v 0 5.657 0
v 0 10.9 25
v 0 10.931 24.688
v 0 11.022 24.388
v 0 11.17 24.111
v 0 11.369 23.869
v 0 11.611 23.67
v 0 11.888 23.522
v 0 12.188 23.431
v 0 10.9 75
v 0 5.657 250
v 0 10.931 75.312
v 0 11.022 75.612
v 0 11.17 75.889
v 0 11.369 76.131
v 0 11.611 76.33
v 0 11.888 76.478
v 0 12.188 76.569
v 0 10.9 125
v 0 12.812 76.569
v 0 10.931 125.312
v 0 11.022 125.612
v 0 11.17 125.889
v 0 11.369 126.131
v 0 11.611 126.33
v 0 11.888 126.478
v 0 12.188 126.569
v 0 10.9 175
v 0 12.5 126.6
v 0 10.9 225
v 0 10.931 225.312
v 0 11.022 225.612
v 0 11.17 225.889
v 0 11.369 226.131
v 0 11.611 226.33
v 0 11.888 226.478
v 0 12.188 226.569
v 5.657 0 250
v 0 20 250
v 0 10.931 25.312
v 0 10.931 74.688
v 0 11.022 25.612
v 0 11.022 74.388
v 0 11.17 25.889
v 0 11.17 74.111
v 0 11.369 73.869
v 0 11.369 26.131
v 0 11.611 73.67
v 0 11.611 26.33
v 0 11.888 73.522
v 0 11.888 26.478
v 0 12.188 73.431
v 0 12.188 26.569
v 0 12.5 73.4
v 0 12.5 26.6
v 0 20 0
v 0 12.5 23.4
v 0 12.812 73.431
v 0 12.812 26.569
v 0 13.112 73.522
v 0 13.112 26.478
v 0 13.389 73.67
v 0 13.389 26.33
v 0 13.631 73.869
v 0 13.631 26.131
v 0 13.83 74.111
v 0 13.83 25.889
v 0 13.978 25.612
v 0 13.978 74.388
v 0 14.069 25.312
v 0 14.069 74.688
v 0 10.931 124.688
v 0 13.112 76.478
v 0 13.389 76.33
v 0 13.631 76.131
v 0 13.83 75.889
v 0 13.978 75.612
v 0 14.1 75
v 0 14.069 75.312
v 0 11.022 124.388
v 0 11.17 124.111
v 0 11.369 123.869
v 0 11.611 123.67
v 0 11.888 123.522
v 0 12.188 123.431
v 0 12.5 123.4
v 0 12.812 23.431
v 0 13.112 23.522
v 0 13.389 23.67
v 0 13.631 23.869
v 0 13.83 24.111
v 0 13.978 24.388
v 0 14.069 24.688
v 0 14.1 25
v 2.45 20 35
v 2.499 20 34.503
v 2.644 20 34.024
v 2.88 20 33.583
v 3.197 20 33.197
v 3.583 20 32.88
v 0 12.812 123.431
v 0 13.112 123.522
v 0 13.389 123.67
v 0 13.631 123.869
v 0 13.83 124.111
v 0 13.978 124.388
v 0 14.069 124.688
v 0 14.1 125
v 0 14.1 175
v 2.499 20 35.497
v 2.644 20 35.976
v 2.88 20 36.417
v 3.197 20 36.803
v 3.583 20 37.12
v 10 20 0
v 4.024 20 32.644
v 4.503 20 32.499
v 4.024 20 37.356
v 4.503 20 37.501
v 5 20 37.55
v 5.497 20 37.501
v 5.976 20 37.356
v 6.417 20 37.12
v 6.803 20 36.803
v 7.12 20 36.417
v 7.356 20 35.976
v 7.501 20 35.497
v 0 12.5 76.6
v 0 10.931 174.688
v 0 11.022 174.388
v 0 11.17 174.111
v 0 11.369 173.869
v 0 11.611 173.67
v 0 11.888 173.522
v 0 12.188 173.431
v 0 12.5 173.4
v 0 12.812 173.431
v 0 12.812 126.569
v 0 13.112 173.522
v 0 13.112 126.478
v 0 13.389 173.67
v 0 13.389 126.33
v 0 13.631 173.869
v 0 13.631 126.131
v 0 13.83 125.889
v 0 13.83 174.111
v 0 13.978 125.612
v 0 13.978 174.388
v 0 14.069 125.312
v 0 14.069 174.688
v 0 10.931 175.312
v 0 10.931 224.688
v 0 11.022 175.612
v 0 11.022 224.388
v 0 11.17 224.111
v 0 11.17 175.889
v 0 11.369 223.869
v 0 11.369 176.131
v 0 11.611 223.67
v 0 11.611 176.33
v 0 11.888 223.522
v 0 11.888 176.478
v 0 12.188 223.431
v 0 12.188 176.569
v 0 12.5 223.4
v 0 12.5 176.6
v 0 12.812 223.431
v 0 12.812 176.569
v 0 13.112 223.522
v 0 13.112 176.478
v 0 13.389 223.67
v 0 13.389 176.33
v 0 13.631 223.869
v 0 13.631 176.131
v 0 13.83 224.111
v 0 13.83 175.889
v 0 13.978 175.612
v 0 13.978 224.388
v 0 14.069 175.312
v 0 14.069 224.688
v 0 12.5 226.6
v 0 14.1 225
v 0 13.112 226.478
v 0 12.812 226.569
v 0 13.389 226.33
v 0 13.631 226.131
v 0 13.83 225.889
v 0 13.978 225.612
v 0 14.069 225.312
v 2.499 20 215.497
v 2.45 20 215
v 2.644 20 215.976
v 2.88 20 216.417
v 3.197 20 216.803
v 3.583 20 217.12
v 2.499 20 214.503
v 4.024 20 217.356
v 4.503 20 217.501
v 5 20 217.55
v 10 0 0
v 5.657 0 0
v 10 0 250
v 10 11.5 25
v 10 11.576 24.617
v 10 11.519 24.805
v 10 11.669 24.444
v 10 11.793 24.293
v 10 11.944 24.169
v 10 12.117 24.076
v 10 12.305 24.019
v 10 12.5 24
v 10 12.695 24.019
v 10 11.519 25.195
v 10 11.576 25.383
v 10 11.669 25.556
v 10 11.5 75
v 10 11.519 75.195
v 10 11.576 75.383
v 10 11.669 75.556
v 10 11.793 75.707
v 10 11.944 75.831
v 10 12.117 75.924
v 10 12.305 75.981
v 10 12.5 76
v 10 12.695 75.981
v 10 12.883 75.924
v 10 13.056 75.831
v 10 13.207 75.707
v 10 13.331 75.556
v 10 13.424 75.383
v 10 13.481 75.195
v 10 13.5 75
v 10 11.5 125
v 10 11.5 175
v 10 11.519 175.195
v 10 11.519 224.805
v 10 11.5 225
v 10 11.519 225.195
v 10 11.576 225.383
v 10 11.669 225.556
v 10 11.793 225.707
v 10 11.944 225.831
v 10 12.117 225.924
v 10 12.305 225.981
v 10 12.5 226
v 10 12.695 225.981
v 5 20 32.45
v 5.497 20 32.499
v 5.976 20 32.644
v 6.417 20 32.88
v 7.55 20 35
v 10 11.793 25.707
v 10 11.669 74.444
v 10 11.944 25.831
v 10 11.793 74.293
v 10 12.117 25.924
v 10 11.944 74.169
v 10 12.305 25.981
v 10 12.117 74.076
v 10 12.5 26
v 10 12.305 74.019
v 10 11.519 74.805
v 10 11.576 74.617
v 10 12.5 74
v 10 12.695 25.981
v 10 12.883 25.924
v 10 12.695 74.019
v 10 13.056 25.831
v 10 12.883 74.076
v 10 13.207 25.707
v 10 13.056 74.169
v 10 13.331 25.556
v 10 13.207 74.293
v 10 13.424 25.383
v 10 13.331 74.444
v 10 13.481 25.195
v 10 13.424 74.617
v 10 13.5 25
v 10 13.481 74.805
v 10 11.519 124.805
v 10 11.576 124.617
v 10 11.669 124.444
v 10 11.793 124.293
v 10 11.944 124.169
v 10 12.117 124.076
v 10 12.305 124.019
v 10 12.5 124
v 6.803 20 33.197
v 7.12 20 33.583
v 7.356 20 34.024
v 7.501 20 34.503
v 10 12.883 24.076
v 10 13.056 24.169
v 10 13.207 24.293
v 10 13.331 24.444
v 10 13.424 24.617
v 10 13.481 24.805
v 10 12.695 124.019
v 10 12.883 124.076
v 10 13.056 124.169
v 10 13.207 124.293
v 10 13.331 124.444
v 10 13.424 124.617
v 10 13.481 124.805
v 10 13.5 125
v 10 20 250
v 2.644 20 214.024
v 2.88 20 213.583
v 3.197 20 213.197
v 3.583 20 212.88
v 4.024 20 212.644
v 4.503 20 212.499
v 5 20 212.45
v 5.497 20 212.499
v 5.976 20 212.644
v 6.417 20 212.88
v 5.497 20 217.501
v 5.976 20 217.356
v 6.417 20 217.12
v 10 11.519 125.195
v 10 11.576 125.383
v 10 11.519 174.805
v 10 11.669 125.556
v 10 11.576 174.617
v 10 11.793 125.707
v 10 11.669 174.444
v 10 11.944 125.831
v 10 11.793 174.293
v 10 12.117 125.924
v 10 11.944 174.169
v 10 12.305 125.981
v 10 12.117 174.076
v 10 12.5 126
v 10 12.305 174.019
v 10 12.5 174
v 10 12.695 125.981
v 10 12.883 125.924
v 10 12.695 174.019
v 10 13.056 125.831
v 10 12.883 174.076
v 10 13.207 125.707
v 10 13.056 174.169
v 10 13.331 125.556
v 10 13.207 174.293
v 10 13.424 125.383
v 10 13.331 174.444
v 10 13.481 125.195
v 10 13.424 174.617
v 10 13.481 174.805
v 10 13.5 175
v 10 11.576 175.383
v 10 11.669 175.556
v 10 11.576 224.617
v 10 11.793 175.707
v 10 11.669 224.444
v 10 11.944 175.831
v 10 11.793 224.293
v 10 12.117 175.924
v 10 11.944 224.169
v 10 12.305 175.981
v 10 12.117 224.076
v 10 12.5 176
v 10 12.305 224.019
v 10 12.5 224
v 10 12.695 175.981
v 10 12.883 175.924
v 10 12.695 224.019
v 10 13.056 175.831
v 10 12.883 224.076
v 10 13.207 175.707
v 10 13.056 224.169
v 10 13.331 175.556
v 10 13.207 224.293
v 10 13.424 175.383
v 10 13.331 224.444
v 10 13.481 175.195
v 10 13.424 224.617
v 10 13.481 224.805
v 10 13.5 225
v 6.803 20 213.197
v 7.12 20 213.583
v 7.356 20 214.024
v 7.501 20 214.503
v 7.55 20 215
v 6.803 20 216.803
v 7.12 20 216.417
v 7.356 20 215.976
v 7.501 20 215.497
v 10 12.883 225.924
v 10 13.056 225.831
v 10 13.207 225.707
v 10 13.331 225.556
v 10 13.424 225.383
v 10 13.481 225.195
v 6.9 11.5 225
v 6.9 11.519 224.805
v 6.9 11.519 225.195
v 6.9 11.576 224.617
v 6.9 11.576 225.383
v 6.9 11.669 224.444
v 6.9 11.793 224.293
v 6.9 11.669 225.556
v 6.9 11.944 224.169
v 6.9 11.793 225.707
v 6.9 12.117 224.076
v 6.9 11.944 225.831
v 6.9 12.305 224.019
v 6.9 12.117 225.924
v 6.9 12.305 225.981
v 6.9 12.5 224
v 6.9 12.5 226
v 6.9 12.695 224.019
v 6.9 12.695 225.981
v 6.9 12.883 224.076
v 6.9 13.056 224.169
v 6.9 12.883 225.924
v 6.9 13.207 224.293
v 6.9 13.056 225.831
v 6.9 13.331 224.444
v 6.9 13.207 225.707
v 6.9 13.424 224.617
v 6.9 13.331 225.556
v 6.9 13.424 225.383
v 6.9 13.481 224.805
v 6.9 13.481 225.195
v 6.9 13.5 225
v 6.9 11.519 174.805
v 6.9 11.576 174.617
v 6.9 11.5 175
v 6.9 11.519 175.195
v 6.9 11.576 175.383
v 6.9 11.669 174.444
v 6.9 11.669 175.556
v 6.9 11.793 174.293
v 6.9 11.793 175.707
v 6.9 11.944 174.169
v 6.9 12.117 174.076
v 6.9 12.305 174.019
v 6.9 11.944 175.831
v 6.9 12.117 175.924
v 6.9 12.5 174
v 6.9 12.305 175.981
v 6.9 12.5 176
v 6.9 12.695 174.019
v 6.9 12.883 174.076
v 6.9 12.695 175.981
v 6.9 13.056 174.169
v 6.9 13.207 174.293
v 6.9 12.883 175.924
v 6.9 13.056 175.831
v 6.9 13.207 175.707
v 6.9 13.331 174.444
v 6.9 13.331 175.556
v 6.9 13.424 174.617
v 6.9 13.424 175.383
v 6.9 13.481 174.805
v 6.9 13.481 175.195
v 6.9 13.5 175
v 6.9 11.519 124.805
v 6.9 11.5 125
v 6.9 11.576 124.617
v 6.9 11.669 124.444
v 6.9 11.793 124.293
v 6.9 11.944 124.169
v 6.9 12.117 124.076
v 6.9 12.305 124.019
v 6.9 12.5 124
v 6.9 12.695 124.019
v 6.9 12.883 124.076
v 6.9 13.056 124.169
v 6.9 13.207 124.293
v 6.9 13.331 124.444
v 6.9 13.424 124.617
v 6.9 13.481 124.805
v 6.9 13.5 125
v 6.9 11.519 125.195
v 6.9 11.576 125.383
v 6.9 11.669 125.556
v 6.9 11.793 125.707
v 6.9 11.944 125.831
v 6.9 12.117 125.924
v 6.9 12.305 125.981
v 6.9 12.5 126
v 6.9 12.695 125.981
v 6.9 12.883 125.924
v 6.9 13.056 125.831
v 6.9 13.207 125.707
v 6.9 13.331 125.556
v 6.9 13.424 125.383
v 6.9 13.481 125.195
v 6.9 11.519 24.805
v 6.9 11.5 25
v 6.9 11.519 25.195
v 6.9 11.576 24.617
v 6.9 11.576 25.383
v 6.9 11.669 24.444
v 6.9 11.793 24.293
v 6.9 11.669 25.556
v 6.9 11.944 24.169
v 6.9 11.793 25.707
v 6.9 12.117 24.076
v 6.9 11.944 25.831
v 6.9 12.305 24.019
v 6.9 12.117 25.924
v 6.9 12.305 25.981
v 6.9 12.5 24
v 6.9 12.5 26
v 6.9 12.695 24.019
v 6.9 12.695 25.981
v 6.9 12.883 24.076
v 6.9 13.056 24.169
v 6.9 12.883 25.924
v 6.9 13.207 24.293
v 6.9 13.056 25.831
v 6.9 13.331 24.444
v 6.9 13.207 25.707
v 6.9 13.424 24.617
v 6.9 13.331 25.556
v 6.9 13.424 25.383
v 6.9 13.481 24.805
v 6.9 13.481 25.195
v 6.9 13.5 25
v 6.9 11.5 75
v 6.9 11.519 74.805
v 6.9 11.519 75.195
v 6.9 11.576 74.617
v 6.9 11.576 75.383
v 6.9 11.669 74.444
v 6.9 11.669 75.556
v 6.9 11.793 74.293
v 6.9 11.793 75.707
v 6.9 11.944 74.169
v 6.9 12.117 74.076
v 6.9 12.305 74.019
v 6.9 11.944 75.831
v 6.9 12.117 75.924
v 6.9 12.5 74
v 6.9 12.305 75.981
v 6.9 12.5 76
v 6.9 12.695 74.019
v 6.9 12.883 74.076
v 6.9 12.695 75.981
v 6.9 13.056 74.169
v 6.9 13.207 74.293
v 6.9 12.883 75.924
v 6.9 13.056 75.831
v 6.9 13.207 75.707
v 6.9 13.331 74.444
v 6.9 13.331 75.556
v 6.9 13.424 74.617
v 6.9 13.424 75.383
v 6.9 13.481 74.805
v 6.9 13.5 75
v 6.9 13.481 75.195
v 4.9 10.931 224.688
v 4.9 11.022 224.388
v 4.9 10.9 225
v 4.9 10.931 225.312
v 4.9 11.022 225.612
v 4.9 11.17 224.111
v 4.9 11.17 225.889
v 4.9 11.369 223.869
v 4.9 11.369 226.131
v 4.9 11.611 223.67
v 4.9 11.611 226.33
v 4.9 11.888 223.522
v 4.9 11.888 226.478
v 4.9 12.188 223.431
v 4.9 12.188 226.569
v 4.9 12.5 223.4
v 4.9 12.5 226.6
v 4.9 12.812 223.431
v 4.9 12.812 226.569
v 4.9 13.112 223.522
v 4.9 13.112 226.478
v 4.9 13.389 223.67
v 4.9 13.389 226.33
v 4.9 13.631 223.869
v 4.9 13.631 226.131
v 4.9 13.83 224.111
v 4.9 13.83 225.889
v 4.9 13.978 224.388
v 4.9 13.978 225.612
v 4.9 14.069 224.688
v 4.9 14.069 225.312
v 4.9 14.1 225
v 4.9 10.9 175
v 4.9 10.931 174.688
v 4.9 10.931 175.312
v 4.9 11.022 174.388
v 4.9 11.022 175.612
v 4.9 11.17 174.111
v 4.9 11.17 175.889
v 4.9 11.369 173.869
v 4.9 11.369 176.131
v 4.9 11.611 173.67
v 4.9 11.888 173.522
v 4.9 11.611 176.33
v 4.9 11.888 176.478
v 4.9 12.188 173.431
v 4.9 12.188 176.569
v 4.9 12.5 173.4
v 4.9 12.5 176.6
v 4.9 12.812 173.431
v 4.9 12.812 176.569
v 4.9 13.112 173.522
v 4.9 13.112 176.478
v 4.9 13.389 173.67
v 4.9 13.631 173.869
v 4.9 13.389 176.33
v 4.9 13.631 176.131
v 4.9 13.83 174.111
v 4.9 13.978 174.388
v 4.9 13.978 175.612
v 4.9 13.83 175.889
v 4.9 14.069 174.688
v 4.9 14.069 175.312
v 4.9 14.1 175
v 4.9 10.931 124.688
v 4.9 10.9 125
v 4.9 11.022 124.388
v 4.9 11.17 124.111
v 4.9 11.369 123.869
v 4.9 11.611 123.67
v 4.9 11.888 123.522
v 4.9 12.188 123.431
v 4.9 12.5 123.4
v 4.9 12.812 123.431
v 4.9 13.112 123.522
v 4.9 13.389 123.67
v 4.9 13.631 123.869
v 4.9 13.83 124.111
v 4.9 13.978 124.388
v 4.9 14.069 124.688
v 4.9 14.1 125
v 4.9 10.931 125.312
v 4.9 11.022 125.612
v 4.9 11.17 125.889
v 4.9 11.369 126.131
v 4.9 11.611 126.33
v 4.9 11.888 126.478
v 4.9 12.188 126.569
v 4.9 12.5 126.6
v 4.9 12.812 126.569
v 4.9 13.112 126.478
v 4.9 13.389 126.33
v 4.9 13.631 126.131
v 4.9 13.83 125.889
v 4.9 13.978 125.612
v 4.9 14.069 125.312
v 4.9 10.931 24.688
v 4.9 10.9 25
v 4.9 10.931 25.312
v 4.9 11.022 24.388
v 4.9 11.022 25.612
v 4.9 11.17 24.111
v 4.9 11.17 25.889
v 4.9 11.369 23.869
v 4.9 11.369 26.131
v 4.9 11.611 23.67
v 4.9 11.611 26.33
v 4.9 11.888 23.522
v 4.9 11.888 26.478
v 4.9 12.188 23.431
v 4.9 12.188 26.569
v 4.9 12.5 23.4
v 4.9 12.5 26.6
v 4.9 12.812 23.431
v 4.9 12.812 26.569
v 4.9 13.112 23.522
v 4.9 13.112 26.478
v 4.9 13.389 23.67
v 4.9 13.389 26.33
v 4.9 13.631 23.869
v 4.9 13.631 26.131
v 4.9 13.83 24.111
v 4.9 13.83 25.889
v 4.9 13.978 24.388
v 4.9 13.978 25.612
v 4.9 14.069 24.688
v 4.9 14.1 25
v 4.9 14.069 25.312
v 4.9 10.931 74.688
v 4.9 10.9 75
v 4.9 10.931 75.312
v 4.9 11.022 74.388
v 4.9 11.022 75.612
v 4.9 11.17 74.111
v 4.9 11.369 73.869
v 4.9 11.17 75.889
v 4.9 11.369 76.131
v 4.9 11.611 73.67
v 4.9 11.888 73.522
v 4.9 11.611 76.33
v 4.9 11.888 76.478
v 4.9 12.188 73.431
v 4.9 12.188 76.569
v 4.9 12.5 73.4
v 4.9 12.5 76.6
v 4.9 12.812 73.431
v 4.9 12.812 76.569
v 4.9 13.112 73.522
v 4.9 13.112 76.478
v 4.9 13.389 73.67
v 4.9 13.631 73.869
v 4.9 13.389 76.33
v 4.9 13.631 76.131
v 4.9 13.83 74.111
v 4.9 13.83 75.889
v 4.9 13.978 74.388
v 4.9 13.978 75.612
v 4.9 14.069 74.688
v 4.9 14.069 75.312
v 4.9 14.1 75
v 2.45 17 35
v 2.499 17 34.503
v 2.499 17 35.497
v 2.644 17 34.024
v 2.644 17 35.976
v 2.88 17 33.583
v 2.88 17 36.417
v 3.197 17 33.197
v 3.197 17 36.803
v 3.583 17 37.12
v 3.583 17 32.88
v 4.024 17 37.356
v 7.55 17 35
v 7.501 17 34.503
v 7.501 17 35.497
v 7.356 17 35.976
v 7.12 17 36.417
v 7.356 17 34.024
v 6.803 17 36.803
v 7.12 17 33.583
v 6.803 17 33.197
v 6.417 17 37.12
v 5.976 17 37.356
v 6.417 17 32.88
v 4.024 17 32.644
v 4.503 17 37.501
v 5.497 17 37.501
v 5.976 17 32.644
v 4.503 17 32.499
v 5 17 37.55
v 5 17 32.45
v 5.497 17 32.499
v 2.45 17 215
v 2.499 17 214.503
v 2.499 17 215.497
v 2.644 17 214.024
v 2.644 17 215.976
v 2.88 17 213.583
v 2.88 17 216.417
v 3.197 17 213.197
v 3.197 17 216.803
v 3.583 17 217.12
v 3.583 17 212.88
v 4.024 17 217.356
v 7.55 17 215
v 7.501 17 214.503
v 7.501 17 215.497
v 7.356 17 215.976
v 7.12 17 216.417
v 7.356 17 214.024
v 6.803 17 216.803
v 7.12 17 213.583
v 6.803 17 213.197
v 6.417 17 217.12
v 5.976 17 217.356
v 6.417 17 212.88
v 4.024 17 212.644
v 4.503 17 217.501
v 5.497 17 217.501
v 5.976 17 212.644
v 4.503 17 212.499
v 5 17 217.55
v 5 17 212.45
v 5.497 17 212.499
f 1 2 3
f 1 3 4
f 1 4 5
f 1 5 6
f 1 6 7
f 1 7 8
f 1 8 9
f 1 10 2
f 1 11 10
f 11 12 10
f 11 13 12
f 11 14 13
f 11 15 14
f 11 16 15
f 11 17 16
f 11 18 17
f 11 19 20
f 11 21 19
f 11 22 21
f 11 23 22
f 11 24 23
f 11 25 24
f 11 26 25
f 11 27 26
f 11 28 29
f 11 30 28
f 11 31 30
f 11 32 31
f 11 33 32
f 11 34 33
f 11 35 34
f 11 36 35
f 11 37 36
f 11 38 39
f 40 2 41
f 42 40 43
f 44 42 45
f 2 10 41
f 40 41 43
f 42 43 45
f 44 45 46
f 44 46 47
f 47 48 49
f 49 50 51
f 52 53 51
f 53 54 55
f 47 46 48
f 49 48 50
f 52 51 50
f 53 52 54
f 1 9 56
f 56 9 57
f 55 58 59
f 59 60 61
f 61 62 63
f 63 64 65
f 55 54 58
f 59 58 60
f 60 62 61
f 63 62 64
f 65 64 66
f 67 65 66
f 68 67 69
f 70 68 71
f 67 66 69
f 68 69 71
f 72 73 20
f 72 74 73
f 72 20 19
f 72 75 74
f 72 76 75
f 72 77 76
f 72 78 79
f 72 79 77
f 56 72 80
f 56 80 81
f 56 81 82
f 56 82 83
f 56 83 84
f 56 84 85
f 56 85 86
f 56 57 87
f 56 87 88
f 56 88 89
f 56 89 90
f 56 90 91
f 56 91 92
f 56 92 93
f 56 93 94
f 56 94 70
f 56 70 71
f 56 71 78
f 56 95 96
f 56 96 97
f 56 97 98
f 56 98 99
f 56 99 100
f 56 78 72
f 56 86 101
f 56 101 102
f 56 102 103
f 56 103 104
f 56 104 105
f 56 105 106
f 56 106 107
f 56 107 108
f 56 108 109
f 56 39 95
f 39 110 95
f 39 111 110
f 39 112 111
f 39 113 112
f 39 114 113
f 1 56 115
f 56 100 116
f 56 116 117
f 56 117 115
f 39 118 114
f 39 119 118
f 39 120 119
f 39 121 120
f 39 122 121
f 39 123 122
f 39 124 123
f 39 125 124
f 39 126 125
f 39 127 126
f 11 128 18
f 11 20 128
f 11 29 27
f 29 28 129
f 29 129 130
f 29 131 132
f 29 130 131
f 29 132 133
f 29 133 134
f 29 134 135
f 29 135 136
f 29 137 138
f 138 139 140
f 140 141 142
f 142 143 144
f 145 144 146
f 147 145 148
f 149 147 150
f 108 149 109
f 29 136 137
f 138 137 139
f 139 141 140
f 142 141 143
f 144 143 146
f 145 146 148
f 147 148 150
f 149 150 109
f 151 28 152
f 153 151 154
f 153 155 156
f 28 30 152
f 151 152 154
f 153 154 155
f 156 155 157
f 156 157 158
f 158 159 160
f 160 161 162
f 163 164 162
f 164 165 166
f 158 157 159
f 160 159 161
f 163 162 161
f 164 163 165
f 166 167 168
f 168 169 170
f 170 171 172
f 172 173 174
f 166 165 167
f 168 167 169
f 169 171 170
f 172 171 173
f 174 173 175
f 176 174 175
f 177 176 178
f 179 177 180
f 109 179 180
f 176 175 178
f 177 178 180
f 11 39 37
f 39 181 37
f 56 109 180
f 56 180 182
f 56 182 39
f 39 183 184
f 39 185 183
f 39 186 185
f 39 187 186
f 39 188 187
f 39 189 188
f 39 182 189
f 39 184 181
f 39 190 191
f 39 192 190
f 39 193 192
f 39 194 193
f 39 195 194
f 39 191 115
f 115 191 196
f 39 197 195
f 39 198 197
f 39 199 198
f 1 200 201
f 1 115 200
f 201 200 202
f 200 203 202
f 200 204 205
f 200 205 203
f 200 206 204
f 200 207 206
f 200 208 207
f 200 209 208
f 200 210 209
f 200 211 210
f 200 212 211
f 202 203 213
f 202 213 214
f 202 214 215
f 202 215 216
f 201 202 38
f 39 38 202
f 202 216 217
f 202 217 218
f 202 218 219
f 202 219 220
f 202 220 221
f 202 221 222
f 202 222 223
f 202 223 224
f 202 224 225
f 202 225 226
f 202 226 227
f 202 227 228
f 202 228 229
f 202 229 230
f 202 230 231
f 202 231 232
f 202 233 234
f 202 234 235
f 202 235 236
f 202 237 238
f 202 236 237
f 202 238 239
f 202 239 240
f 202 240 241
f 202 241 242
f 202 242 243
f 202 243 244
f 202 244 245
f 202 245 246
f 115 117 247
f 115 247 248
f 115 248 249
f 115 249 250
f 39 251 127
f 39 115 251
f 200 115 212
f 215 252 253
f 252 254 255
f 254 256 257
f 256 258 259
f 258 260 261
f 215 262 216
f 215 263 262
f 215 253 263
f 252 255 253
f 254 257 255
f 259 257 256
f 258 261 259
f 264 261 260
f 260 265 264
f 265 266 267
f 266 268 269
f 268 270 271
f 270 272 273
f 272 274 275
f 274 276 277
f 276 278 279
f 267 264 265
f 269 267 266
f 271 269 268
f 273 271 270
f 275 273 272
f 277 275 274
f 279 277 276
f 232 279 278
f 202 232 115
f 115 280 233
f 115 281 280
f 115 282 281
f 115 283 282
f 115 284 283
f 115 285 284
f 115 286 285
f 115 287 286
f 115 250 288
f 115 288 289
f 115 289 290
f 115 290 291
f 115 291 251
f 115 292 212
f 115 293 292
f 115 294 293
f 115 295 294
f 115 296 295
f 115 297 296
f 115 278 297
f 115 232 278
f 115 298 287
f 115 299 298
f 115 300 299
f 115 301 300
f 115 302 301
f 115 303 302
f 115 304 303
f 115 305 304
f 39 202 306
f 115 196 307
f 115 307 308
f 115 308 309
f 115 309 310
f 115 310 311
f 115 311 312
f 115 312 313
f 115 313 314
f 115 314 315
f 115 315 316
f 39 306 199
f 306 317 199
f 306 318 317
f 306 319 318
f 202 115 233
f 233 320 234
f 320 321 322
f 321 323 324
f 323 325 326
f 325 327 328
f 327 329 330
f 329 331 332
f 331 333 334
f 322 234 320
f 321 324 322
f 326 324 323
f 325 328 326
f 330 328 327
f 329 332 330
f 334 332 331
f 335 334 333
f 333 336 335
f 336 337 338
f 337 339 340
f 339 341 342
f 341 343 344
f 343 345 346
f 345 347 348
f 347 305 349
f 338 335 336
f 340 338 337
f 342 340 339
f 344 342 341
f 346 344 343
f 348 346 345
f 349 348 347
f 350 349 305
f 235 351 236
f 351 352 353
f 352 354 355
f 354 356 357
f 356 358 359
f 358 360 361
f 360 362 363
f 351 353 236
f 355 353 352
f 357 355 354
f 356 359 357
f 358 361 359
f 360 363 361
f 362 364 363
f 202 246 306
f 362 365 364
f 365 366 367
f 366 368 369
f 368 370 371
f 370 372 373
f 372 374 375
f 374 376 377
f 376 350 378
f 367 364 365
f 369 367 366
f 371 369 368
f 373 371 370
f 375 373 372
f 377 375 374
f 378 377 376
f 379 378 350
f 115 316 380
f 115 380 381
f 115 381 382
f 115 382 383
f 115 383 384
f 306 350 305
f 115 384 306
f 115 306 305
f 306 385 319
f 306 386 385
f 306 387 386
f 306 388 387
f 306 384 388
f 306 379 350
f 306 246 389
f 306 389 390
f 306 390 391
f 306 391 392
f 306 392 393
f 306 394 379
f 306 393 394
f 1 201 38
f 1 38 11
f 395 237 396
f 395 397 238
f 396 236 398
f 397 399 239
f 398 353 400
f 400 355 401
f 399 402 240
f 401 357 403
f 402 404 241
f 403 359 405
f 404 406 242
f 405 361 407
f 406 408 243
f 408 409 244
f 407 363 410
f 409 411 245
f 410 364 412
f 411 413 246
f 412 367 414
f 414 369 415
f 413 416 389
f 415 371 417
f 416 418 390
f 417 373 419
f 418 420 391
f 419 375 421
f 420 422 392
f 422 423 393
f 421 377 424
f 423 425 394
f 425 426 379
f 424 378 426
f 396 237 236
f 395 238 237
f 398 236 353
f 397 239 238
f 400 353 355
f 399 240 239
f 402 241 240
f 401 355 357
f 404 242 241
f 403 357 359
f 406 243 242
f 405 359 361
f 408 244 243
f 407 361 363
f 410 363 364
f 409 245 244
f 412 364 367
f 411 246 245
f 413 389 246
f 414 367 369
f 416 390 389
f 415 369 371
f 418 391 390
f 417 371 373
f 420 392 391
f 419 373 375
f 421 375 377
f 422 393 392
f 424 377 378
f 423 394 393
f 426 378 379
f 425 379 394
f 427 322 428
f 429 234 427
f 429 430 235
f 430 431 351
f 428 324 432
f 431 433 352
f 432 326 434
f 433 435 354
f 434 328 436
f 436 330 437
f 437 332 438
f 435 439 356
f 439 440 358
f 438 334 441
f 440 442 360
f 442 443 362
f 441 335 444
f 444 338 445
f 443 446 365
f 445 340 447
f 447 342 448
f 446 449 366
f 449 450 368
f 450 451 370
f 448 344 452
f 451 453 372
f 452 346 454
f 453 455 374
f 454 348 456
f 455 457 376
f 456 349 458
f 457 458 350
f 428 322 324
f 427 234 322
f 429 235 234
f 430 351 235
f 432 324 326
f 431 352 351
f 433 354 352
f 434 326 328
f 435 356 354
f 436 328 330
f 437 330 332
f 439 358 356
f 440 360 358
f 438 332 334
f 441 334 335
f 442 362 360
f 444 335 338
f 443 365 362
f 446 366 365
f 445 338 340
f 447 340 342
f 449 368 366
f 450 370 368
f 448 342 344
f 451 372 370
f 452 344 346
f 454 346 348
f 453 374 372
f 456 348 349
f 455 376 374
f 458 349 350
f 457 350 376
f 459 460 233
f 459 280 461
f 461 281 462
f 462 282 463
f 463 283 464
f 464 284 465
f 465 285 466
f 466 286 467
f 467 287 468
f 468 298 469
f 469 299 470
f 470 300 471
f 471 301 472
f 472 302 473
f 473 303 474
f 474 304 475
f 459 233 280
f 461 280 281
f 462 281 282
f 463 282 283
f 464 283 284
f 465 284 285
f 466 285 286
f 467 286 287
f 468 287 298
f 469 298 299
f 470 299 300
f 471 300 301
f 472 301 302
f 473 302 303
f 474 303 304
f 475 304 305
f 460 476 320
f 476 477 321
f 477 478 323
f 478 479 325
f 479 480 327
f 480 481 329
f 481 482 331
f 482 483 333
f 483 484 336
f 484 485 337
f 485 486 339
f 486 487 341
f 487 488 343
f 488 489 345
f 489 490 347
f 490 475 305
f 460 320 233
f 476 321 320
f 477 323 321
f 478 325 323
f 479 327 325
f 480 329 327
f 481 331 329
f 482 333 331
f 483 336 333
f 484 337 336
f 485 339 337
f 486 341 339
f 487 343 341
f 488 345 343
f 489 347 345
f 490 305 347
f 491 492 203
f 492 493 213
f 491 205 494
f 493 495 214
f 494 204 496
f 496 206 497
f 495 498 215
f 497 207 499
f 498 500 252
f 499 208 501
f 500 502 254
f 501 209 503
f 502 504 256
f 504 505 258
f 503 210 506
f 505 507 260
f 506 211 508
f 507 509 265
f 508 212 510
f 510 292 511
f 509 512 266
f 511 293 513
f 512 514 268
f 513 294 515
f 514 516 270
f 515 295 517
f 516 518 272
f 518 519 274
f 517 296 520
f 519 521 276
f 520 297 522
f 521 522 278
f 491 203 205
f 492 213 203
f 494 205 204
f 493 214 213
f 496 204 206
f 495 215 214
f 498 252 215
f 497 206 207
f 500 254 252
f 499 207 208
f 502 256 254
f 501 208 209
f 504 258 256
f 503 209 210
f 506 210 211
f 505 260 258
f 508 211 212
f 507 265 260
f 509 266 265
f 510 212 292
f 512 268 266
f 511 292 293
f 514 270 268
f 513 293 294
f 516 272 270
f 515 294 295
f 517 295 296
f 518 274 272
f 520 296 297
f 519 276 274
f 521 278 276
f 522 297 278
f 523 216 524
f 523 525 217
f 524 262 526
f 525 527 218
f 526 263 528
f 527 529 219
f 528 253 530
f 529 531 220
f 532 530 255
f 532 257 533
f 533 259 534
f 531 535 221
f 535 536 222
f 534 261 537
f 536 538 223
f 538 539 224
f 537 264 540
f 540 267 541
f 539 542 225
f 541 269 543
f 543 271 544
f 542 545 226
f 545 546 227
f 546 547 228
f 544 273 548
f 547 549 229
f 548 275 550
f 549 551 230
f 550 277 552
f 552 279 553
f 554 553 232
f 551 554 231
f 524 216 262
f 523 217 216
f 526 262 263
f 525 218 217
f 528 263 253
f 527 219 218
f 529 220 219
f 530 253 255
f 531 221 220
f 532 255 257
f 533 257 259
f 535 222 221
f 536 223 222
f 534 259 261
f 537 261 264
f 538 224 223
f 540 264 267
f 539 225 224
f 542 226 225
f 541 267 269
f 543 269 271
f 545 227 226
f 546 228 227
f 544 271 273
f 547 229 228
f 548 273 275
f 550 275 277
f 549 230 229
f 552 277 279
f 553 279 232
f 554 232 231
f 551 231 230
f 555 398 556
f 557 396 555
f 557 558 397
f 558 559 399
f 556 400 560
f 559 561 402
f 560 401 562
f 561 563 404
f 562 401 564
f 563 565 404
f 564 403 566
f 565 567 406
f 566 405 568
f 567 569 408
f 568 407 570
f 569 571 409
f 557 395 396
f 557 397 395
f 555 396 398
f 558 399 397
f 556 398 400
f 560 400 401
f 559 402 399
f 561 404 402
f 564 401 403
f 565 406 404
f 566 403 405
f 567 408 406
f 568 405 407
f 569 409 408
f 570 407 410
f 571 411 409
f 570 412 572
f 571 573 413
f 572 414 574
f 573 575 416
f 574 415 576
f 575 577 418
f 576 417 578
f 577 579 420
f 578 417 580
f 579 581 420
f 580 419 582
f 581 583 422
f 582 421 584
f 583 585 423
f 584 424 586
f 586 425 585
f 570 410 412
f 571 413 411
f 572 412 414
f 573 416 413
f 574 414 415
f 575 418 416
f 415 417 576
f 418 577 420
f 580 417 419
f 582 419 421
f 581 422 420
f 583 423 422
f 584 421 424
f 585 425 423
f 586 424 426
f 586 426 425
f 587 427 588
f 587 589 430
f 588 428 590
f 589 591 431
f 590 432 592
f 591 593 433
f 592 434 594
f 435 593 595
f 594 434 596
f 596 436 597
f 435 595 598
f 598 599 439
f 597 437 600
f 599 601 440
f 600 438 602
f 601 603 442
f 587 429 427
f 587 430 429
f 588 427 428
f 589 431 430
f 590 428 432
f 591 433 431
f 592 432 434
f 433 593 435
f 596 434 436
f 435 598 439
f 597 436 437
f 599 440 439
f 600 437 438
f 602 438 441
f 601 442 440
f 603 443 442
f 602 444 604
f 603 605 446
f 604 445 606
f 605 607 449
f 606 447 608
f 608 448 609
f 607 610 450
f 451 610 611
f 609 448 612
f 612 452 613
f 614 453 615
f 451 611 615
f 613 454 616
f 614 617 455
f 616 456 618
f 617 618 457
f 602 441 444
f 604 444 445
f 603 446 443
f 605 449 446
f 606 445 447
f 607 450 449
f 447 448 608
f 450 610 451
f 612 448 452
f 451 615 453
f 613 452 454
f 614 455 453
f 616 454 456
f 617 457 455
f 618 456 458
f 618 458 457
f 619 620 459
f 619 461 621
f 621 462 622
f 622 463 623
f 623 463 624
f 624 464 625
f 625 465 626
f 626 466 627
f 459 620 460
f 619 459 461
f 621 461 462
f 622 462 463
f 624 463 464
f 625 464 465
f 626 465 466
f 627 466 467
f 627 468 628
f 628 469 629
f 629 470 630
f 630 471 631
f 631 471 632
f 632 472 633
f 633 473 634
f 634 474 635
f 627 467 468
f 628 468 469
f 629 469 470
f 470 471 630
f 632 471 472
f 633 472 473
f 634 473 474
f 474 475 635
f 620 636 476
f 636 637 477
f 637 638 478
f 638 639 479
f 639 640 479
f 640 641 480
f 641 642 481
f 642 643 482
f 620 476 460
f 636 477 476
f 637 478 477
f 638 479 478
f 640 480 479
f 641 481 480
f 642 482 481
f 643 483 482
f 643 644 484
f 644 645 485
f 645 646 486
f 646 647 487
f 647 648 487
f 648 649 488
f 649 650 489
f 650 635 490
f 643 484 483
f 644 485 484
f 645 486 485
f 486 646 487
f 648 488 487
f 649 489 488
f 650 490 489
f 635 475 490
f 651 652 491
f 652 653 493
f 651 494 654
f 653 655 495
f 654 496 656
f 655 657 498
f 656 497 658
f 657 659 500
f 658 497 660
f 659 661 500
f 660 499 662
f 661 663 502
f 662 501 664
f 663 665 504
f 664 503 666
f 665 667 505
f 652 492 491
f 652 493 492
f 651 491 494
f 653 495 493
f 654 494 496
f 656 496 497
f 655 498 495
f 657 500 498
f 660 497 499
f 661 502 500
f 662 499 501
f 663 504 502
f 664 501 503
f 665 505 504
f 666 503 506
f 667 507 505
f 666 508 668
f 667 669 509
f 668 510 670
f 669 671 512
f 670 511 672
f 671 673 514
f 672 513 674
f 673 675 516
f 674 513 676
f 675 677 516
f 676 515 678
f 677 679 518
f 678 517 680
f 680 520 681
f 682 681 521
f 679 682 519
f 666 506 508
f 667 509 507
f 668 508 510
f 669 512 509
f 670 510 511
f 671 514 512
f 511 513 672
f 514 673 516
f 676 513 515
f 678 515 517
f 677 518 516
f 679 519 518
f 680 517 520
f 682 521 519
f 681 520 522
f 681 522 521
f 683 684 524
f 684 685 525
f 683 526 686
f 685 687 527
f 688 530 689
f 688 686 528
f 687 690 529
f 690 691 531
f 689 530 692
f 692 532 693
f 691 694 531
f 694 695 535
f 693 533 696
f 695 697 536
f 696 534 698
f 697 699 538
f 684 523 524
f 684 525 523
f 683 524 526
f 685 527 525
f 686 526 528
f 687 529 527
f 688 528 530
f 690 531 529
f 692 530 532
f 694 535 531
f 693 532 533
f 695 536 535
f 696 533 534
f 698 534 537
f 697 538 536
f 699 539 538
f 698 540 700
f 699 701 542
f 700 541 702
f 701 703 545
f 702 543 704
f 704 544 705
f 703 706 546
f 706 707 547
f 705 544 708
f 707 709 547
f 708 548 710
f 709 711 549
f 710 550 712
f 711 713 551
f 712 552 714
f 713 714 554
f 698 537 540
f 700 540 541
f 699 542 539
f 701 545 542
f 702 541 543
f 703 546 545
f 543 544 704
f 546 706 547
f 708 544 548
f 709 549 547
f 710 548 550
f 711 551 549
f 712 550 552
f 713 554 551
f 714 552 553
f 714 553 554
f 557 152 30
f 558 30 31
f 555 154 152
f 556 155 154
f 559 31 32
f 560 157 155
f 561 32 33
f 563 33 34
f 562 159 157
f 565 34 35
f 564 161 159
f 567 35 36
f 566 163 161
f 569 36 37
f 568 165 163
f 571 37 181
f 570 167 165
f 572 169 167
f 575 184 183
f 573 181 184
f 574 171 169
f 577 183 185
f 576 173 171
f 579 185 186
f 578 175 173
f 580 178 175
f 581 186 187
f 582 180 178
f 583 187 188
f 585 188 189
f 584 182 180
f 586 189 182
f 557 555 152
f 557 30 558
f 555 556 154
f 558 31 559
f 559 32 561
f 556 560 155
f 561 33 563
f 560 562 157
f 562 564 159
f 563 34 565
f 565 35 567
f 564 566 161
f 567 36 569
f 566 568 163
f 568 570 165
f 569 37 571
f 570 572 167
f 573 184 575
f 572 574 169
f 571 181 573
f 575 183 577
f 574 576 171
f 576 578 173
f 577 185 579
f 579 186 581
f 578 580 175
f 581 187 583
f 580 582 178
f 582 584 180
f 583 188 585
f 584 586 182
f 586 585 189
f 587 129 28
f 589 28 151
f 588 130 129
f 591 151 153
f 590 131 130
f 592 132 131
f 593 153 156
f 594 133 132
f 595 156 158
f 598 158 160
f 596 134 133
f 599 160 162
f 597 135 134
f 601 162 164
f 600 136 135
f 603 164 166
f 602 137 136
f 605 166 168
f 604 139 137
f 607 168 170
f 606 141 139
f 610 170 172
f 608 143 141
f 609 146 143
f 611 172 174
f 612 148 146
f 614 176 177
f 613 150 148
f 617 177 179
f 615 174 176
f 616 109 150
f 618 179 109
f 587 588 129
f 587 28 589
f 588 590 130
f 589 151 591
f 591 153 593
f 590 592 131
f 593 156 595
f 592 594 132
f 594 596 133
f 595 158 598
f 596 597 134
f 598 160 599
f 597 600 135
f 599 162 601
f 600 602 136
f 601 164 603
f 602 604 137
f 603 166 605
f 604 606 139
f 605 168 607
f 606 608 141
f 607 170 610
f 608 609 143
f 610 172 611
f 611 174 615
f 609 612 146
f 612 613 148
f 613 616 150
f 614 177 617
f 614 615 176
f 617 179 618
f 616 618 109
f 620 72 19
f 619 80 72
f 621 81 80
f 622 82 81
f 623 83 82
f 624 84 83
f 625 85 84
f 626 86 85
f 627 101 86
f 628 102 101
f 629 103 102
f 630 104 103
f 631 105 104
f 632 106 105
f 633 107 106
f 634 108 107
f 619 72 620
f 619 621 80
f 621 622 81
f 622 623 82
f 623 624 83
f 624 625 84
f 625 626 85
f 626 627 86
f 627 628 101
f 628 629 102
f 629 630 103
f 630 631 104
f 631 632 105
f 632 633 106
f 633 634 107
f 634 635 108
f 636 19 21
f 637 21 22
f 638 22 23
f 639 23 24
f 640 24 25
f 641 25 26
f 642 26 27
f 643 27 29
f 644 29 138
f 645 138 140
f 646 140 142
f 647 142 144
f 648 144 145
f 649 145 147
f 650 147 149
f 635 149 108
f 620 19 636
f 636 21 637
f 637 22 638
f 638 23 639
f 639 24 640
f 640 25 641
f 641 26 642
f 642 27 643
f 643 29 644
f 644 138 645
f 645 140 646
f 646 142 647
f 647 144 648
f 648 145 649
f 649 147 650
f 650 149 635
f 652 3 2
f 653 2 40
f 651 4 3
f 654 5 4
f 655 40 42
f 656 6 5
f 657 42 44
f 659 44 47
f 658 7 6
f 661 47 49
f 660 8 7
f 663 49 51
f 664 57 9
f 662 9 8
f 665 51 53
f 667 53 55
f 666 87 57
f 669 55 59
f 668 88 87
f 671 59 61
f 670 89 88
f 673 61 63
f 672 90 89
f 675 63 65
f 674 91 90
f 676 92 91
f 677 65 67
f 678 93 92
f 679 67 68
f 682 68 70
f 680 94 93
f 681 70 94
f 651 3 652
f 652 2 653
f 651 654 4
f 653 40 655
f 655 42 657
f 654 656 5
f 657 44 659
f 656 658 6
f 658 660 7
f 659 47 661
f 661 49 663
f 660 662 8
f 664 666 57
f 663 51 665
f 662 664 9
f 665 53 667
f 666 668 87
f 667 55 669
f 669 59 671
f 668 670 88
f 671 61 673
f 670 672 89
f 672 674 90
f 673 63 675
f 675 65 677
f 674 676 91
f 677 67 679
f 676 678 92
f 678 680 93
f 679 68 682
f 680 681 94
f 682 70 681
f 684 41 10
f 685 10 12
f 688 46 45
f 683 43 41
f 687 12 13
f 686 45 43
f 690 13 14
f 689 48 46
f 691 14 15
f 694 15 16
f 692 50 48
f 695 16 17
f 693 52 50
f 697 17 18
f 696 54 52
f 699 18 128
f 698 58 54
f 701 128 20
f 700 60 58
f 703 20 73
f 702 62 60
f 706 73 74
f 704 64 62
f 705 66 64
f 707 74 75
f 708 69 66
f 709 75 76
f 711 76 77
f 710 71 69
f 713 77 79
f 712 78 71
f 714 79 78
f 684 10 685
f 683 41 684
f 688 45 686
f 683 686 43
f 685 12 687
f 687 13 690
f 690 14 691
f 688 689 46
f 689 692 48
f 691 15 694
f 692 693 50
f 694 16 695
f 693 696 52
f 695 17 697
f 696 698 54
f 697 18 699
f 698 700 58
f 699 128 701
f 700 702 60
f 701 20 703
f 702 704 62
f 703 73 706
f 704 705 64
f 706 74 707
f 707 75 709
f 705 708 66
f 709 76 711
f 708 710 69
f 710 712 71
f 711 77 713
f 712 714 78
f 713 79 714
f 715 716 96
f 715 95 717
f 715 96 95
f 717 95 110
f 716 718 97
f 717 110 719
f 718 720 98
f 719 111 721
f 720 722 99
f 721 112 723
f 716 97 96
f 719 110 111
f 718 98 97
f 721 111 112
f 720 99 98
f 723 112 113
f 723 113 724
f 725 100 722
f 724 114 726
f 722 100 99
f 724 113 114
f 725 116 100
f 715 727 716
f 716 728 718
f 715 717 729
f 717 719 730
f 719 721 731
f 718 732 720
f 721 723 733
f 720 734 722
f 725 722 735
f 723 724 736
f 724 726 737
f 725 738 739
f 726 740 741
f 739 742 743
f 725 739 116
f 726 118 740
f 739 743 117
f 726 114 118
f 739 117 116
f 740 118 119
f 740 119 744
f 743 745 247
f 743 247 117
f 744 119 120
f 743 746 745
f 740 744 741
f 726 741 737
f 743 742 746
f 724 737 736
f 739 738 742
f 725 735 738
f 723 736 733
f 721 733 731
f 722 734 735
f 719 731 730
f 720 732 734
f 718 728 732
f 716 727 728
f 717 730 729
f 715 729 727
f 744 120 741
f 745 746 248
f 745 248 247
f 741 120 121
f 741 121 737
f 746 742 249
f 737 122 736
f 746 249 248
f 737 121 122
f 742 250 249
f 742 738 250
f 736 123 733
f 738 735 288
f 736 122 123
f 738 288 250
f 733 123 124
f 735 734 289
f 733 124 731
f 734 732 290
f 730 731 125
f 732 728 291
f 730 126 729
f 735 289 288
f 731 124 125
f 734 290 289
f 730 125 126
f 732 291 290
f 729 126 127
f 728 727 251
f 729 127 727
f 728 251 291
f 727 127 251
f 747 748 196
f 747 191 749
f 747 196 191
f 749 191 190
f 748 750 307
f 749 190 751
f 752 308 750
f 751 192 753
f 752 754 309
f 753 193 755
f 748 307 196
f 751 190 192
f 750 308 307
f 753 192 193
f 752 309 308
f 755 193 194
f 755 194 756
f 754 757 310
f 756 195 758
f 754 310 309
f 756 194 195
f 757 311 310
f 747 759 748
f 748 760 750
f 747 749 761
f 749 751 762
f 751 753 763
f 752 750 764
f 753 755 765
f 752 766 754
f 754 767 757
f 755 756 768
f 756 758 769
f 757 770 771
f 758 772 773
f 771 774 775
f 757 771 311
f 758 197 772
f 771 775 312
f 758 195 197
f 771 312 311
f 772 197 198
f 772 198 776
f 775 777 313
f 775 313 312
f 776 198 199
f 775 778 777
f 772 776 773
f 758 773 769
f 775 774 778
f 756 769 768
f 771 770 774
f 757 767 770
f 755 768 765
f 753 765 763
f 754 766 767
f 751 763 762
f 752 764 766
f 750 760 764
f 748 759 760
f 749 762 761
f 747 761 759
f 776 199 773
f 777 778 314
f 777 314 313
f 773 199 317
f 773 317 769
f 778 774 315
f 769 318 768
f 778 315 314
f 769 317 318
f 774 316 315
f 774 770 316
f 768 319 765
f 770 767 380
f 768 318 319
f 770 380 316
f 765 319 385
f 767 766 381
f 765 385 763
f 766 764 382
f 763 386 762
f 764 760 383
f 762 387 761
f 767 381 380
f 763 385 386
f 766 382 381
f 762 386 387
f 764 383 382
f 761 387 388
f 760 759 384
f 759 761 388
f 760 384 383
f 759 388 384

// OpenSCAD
// ============================================
// Parametric Prism with Screw and Magnet Holes
// ============================================

clearance = 0.1;

// --- Dimensions ---
prism_height = 250;  // mm (25cm)
prism_width = 20;    // mm (1cm) W-E
prism_length = 10;   // mm (1cm) N-S
prism_cut_width = 8; // mm (1cm) N-W

// --- Screw Hole Parameters ---
screw_type = "M3";   // "M2" or "M3"
screw_hole_small = 2;  // mm - pilot hole diameter
screw_hole_cone = true;  // add cone section to screw hole
screw_hole_head = 5;

// Screw dimensions
m2_diameter = 2.2;
m3_diameter = 3.2;
screw_diameter = (screw_type == "M2") ? m2_diameter : m3_diameter;
screw_cone_depth = 2;  // mm

// --- N-side Screw Hole Heights and offsets from center (mm) ---
n_screw_heights = [25, 75, 125, 175, 225];  // mm
n_screw_offset = 2.5;  // N-side

// --- S-side Screw Hole Heights and offsets from center (mm) ---
s_screw_heights = [];  // mm
s_screw_offset = 0;  // S-side

// --- W-side Screw Hole Heights and offsets from center (mm) ---
w_screw_heights = [];  // mm
w_screw_offset = 0;  // W-side

// --- E-side Screw Hole Heights and offsets from center (mm) ---
e_screw_heights = [];  // mm
e_screw_offset = 0;  // E-side

// --- Magnet Hole Parameters ---
magnet_diameter = 5;   // mm
magnet_height = 3;     // mm

// --- N-side Magnet Hole Heights and offsets from center (mm) ---
n_magnet_heights = [];  // mm
n_magnet_offset = 0;  // N-side

// --- S-side Magnet Hole Heights and offsets from center (mm) ---
s_magnet_heights = [];  // mm
s_magnet_offset = 0;  // S-side

// --- E-side Magnet Hole Heights and offsets from center (mm) ---
e_magnet_heights = [35, 215];  // mm
e_magnet_offset = 0;  // E-side

// --- E-side Magnet Hole Heights and offsets from center (mm) ---
w_magnet_heights = [];  // mm
w_magnet_offset = 0;  // W-side

// ============================================
// Main Assembly
// ============================================

difference() {
    // Base prism with 45-degree cut
    prism_with_cut();
    
    // N-side screw holes
    for (h = n_screw_heights) {
        screw_hole_n(h, n_screw_offset);
    }

    // S-side screw holes
    for (h = s_screw_heights) {
        screw_hole_s(h, s_screw_offset);
    }

    // W-side screw holes
    for (h = w_screw_heights) {
        screw_hole_w(h, w_screw_offset);
    }

    // E-side screw holes
    for (h = e_screw_heights) {
        screw_hole_e(h, e_screw_offset);
    }
    
    // N-side magnet holes
    for (h = n_magnet_heights) {
        magnet_hole_n(h, n_magnet_offset);
    }

    // S-side magnet holes
    for (h = s_magnet_heights) {
        magnet_hole_s(h, s_magnet_offset);
    }

    // E-side magnet holes
    for (h = e_magnet_heights) {
        magnet_hole_e(h, e_magnet_offset);
    }

    // W-side magnet holes
    for (h = w_magnet_heights) {
        magnet_hole_w(h, w_magnet_offset);
    }
}

// ============================================
// Modules
// ============================================

module prism_with_cut() {
    difference() {
        // Base prism (center at 0,0, prism_height/2)
        cube([prism_length, prism_width, prism_height]);
        
        // 45-degree cut in NW corner (top)
        // NW corner is at (0, 0, prism_height)
        // Cut diagonally from NW towards SE
        rotate([0, 0, 45])
        translate([-prism_cut_width/2, -prism_cut_width/2, -clearance])
            cube([prism_cut_width, prism_cut_width, prism_height + clearance * 2]);
    }
}

module screw_hole_n(height, offset) {
    // N-side hole: enters from N (length = 0) going towards S
    // Centered in W-E direction with offset
    y_pos = prism_width / 2 + offset;
    
    translate([-clearance, y_pos, height])
        rotate([0, -90, 180])
        screw_hole_profile();
}

module screw_hole_s(height, offset) {
    // S-side hole: enters from S (length = prism_length) going towards N
    // Centered in W-E direction with offset
    y_pos = prism_width / 2 + offset;
    
    translate([prism_length + clearance, y_pos, height])
        rotate([0, 90, 180])
        screw_hole_profile();
}

module screw_hole_e(height, offset) {
    // E-side hole: enters from E (width = prism_width) going towards W
    // Centered in N-S direction with offset
    x_pos = prism_length / 2 + offset;
    
    translate([x_pos, prism_width + clearance, height])
        rotate([0, 90, -90])
        screw_hole_profile();
}

module screw_hole_w(height, offset) {
    // W-side hole: enters from W (width = 0) going towards E
    // Centered in N-S direction with offset
    x_pos = prism_length / 2 + offset;
    
    translate([x_pos, - clearance, height])
        rotate([0, -90, -90])
        screw_hole_profile();
}

module screw_hole_profile() {
    union() {
        // Small pilot hole through entire width/length
        cylinder(h=prism_width + prism_length, d=screw_hole_small, $fn=32);
        
        // Wider screw shaft section
        shaft_length = (prism_width + prism_length) / 2;
        translate([0, 0, screw_hole_head])
            cylinder(h=screw_cone_depth, d1=screw_diameter, d2=screw_hole_small, $fn=32);
        
        if (screw_hole_cone) {
            // Cone section for screw head
            translate([0, 0, 0])
                cylinder(h=screw_hole_head, d1=screw_diameter, d2=screw_diameter, $fn=32);
        }
    };
}

module magnet_hole_n(height, offset) {
    // N-side magnet hole: enters from N going towards S
    // Centered in W-E direction with offset
    y_pos = prism_width / 2 + offset;
    
    translate([-clearance, y_pos, height])
        rotate([0, -90, 180])
        cylinder(h=magnet_height + clearance, d=magnet_diameter + clearance, $fn=32);
}

module magnet_hole_s(height, offset) {
    // S-side magnet hole: enters from S going towards N
    // Centered in W-E direction with offset
    y_pos = prism_width / 2 + offset;
    
    translate([prism_length+clearance, y_pos, height])
        rotate([0, 90, 180])
        cylinder(h=magnet_height + clearance, d=magnet_diameter + clearance, $fn=32);
}

module magnet_hole_e(height, offset) {
    // E-side magnet hole: enters from E going towards W
    // Centered in N-S direction with offset
    x_pos = prism_length / 2 + offset;
    
    translate([x_pos, prism_width + clearance, height])
        rotate([0, 90, -90])
        cylinder(h=magnet_height + clearance, d=magnet_diameter + clearance, $fn=32);
}

module magnet_hole_w(height, offset) {
    // E-side magnet hole: enters from E going towards W
    // Centered in N-S direction with offset
    x_pos = prism_length / 2 + offset;
    
    translate([x_pos, -clearance, height])
        rotate([0, -90, -90])
        cylinder(h=magnet_height + clearance, d=magnet_diameter + clearance, $fn=32);
}
